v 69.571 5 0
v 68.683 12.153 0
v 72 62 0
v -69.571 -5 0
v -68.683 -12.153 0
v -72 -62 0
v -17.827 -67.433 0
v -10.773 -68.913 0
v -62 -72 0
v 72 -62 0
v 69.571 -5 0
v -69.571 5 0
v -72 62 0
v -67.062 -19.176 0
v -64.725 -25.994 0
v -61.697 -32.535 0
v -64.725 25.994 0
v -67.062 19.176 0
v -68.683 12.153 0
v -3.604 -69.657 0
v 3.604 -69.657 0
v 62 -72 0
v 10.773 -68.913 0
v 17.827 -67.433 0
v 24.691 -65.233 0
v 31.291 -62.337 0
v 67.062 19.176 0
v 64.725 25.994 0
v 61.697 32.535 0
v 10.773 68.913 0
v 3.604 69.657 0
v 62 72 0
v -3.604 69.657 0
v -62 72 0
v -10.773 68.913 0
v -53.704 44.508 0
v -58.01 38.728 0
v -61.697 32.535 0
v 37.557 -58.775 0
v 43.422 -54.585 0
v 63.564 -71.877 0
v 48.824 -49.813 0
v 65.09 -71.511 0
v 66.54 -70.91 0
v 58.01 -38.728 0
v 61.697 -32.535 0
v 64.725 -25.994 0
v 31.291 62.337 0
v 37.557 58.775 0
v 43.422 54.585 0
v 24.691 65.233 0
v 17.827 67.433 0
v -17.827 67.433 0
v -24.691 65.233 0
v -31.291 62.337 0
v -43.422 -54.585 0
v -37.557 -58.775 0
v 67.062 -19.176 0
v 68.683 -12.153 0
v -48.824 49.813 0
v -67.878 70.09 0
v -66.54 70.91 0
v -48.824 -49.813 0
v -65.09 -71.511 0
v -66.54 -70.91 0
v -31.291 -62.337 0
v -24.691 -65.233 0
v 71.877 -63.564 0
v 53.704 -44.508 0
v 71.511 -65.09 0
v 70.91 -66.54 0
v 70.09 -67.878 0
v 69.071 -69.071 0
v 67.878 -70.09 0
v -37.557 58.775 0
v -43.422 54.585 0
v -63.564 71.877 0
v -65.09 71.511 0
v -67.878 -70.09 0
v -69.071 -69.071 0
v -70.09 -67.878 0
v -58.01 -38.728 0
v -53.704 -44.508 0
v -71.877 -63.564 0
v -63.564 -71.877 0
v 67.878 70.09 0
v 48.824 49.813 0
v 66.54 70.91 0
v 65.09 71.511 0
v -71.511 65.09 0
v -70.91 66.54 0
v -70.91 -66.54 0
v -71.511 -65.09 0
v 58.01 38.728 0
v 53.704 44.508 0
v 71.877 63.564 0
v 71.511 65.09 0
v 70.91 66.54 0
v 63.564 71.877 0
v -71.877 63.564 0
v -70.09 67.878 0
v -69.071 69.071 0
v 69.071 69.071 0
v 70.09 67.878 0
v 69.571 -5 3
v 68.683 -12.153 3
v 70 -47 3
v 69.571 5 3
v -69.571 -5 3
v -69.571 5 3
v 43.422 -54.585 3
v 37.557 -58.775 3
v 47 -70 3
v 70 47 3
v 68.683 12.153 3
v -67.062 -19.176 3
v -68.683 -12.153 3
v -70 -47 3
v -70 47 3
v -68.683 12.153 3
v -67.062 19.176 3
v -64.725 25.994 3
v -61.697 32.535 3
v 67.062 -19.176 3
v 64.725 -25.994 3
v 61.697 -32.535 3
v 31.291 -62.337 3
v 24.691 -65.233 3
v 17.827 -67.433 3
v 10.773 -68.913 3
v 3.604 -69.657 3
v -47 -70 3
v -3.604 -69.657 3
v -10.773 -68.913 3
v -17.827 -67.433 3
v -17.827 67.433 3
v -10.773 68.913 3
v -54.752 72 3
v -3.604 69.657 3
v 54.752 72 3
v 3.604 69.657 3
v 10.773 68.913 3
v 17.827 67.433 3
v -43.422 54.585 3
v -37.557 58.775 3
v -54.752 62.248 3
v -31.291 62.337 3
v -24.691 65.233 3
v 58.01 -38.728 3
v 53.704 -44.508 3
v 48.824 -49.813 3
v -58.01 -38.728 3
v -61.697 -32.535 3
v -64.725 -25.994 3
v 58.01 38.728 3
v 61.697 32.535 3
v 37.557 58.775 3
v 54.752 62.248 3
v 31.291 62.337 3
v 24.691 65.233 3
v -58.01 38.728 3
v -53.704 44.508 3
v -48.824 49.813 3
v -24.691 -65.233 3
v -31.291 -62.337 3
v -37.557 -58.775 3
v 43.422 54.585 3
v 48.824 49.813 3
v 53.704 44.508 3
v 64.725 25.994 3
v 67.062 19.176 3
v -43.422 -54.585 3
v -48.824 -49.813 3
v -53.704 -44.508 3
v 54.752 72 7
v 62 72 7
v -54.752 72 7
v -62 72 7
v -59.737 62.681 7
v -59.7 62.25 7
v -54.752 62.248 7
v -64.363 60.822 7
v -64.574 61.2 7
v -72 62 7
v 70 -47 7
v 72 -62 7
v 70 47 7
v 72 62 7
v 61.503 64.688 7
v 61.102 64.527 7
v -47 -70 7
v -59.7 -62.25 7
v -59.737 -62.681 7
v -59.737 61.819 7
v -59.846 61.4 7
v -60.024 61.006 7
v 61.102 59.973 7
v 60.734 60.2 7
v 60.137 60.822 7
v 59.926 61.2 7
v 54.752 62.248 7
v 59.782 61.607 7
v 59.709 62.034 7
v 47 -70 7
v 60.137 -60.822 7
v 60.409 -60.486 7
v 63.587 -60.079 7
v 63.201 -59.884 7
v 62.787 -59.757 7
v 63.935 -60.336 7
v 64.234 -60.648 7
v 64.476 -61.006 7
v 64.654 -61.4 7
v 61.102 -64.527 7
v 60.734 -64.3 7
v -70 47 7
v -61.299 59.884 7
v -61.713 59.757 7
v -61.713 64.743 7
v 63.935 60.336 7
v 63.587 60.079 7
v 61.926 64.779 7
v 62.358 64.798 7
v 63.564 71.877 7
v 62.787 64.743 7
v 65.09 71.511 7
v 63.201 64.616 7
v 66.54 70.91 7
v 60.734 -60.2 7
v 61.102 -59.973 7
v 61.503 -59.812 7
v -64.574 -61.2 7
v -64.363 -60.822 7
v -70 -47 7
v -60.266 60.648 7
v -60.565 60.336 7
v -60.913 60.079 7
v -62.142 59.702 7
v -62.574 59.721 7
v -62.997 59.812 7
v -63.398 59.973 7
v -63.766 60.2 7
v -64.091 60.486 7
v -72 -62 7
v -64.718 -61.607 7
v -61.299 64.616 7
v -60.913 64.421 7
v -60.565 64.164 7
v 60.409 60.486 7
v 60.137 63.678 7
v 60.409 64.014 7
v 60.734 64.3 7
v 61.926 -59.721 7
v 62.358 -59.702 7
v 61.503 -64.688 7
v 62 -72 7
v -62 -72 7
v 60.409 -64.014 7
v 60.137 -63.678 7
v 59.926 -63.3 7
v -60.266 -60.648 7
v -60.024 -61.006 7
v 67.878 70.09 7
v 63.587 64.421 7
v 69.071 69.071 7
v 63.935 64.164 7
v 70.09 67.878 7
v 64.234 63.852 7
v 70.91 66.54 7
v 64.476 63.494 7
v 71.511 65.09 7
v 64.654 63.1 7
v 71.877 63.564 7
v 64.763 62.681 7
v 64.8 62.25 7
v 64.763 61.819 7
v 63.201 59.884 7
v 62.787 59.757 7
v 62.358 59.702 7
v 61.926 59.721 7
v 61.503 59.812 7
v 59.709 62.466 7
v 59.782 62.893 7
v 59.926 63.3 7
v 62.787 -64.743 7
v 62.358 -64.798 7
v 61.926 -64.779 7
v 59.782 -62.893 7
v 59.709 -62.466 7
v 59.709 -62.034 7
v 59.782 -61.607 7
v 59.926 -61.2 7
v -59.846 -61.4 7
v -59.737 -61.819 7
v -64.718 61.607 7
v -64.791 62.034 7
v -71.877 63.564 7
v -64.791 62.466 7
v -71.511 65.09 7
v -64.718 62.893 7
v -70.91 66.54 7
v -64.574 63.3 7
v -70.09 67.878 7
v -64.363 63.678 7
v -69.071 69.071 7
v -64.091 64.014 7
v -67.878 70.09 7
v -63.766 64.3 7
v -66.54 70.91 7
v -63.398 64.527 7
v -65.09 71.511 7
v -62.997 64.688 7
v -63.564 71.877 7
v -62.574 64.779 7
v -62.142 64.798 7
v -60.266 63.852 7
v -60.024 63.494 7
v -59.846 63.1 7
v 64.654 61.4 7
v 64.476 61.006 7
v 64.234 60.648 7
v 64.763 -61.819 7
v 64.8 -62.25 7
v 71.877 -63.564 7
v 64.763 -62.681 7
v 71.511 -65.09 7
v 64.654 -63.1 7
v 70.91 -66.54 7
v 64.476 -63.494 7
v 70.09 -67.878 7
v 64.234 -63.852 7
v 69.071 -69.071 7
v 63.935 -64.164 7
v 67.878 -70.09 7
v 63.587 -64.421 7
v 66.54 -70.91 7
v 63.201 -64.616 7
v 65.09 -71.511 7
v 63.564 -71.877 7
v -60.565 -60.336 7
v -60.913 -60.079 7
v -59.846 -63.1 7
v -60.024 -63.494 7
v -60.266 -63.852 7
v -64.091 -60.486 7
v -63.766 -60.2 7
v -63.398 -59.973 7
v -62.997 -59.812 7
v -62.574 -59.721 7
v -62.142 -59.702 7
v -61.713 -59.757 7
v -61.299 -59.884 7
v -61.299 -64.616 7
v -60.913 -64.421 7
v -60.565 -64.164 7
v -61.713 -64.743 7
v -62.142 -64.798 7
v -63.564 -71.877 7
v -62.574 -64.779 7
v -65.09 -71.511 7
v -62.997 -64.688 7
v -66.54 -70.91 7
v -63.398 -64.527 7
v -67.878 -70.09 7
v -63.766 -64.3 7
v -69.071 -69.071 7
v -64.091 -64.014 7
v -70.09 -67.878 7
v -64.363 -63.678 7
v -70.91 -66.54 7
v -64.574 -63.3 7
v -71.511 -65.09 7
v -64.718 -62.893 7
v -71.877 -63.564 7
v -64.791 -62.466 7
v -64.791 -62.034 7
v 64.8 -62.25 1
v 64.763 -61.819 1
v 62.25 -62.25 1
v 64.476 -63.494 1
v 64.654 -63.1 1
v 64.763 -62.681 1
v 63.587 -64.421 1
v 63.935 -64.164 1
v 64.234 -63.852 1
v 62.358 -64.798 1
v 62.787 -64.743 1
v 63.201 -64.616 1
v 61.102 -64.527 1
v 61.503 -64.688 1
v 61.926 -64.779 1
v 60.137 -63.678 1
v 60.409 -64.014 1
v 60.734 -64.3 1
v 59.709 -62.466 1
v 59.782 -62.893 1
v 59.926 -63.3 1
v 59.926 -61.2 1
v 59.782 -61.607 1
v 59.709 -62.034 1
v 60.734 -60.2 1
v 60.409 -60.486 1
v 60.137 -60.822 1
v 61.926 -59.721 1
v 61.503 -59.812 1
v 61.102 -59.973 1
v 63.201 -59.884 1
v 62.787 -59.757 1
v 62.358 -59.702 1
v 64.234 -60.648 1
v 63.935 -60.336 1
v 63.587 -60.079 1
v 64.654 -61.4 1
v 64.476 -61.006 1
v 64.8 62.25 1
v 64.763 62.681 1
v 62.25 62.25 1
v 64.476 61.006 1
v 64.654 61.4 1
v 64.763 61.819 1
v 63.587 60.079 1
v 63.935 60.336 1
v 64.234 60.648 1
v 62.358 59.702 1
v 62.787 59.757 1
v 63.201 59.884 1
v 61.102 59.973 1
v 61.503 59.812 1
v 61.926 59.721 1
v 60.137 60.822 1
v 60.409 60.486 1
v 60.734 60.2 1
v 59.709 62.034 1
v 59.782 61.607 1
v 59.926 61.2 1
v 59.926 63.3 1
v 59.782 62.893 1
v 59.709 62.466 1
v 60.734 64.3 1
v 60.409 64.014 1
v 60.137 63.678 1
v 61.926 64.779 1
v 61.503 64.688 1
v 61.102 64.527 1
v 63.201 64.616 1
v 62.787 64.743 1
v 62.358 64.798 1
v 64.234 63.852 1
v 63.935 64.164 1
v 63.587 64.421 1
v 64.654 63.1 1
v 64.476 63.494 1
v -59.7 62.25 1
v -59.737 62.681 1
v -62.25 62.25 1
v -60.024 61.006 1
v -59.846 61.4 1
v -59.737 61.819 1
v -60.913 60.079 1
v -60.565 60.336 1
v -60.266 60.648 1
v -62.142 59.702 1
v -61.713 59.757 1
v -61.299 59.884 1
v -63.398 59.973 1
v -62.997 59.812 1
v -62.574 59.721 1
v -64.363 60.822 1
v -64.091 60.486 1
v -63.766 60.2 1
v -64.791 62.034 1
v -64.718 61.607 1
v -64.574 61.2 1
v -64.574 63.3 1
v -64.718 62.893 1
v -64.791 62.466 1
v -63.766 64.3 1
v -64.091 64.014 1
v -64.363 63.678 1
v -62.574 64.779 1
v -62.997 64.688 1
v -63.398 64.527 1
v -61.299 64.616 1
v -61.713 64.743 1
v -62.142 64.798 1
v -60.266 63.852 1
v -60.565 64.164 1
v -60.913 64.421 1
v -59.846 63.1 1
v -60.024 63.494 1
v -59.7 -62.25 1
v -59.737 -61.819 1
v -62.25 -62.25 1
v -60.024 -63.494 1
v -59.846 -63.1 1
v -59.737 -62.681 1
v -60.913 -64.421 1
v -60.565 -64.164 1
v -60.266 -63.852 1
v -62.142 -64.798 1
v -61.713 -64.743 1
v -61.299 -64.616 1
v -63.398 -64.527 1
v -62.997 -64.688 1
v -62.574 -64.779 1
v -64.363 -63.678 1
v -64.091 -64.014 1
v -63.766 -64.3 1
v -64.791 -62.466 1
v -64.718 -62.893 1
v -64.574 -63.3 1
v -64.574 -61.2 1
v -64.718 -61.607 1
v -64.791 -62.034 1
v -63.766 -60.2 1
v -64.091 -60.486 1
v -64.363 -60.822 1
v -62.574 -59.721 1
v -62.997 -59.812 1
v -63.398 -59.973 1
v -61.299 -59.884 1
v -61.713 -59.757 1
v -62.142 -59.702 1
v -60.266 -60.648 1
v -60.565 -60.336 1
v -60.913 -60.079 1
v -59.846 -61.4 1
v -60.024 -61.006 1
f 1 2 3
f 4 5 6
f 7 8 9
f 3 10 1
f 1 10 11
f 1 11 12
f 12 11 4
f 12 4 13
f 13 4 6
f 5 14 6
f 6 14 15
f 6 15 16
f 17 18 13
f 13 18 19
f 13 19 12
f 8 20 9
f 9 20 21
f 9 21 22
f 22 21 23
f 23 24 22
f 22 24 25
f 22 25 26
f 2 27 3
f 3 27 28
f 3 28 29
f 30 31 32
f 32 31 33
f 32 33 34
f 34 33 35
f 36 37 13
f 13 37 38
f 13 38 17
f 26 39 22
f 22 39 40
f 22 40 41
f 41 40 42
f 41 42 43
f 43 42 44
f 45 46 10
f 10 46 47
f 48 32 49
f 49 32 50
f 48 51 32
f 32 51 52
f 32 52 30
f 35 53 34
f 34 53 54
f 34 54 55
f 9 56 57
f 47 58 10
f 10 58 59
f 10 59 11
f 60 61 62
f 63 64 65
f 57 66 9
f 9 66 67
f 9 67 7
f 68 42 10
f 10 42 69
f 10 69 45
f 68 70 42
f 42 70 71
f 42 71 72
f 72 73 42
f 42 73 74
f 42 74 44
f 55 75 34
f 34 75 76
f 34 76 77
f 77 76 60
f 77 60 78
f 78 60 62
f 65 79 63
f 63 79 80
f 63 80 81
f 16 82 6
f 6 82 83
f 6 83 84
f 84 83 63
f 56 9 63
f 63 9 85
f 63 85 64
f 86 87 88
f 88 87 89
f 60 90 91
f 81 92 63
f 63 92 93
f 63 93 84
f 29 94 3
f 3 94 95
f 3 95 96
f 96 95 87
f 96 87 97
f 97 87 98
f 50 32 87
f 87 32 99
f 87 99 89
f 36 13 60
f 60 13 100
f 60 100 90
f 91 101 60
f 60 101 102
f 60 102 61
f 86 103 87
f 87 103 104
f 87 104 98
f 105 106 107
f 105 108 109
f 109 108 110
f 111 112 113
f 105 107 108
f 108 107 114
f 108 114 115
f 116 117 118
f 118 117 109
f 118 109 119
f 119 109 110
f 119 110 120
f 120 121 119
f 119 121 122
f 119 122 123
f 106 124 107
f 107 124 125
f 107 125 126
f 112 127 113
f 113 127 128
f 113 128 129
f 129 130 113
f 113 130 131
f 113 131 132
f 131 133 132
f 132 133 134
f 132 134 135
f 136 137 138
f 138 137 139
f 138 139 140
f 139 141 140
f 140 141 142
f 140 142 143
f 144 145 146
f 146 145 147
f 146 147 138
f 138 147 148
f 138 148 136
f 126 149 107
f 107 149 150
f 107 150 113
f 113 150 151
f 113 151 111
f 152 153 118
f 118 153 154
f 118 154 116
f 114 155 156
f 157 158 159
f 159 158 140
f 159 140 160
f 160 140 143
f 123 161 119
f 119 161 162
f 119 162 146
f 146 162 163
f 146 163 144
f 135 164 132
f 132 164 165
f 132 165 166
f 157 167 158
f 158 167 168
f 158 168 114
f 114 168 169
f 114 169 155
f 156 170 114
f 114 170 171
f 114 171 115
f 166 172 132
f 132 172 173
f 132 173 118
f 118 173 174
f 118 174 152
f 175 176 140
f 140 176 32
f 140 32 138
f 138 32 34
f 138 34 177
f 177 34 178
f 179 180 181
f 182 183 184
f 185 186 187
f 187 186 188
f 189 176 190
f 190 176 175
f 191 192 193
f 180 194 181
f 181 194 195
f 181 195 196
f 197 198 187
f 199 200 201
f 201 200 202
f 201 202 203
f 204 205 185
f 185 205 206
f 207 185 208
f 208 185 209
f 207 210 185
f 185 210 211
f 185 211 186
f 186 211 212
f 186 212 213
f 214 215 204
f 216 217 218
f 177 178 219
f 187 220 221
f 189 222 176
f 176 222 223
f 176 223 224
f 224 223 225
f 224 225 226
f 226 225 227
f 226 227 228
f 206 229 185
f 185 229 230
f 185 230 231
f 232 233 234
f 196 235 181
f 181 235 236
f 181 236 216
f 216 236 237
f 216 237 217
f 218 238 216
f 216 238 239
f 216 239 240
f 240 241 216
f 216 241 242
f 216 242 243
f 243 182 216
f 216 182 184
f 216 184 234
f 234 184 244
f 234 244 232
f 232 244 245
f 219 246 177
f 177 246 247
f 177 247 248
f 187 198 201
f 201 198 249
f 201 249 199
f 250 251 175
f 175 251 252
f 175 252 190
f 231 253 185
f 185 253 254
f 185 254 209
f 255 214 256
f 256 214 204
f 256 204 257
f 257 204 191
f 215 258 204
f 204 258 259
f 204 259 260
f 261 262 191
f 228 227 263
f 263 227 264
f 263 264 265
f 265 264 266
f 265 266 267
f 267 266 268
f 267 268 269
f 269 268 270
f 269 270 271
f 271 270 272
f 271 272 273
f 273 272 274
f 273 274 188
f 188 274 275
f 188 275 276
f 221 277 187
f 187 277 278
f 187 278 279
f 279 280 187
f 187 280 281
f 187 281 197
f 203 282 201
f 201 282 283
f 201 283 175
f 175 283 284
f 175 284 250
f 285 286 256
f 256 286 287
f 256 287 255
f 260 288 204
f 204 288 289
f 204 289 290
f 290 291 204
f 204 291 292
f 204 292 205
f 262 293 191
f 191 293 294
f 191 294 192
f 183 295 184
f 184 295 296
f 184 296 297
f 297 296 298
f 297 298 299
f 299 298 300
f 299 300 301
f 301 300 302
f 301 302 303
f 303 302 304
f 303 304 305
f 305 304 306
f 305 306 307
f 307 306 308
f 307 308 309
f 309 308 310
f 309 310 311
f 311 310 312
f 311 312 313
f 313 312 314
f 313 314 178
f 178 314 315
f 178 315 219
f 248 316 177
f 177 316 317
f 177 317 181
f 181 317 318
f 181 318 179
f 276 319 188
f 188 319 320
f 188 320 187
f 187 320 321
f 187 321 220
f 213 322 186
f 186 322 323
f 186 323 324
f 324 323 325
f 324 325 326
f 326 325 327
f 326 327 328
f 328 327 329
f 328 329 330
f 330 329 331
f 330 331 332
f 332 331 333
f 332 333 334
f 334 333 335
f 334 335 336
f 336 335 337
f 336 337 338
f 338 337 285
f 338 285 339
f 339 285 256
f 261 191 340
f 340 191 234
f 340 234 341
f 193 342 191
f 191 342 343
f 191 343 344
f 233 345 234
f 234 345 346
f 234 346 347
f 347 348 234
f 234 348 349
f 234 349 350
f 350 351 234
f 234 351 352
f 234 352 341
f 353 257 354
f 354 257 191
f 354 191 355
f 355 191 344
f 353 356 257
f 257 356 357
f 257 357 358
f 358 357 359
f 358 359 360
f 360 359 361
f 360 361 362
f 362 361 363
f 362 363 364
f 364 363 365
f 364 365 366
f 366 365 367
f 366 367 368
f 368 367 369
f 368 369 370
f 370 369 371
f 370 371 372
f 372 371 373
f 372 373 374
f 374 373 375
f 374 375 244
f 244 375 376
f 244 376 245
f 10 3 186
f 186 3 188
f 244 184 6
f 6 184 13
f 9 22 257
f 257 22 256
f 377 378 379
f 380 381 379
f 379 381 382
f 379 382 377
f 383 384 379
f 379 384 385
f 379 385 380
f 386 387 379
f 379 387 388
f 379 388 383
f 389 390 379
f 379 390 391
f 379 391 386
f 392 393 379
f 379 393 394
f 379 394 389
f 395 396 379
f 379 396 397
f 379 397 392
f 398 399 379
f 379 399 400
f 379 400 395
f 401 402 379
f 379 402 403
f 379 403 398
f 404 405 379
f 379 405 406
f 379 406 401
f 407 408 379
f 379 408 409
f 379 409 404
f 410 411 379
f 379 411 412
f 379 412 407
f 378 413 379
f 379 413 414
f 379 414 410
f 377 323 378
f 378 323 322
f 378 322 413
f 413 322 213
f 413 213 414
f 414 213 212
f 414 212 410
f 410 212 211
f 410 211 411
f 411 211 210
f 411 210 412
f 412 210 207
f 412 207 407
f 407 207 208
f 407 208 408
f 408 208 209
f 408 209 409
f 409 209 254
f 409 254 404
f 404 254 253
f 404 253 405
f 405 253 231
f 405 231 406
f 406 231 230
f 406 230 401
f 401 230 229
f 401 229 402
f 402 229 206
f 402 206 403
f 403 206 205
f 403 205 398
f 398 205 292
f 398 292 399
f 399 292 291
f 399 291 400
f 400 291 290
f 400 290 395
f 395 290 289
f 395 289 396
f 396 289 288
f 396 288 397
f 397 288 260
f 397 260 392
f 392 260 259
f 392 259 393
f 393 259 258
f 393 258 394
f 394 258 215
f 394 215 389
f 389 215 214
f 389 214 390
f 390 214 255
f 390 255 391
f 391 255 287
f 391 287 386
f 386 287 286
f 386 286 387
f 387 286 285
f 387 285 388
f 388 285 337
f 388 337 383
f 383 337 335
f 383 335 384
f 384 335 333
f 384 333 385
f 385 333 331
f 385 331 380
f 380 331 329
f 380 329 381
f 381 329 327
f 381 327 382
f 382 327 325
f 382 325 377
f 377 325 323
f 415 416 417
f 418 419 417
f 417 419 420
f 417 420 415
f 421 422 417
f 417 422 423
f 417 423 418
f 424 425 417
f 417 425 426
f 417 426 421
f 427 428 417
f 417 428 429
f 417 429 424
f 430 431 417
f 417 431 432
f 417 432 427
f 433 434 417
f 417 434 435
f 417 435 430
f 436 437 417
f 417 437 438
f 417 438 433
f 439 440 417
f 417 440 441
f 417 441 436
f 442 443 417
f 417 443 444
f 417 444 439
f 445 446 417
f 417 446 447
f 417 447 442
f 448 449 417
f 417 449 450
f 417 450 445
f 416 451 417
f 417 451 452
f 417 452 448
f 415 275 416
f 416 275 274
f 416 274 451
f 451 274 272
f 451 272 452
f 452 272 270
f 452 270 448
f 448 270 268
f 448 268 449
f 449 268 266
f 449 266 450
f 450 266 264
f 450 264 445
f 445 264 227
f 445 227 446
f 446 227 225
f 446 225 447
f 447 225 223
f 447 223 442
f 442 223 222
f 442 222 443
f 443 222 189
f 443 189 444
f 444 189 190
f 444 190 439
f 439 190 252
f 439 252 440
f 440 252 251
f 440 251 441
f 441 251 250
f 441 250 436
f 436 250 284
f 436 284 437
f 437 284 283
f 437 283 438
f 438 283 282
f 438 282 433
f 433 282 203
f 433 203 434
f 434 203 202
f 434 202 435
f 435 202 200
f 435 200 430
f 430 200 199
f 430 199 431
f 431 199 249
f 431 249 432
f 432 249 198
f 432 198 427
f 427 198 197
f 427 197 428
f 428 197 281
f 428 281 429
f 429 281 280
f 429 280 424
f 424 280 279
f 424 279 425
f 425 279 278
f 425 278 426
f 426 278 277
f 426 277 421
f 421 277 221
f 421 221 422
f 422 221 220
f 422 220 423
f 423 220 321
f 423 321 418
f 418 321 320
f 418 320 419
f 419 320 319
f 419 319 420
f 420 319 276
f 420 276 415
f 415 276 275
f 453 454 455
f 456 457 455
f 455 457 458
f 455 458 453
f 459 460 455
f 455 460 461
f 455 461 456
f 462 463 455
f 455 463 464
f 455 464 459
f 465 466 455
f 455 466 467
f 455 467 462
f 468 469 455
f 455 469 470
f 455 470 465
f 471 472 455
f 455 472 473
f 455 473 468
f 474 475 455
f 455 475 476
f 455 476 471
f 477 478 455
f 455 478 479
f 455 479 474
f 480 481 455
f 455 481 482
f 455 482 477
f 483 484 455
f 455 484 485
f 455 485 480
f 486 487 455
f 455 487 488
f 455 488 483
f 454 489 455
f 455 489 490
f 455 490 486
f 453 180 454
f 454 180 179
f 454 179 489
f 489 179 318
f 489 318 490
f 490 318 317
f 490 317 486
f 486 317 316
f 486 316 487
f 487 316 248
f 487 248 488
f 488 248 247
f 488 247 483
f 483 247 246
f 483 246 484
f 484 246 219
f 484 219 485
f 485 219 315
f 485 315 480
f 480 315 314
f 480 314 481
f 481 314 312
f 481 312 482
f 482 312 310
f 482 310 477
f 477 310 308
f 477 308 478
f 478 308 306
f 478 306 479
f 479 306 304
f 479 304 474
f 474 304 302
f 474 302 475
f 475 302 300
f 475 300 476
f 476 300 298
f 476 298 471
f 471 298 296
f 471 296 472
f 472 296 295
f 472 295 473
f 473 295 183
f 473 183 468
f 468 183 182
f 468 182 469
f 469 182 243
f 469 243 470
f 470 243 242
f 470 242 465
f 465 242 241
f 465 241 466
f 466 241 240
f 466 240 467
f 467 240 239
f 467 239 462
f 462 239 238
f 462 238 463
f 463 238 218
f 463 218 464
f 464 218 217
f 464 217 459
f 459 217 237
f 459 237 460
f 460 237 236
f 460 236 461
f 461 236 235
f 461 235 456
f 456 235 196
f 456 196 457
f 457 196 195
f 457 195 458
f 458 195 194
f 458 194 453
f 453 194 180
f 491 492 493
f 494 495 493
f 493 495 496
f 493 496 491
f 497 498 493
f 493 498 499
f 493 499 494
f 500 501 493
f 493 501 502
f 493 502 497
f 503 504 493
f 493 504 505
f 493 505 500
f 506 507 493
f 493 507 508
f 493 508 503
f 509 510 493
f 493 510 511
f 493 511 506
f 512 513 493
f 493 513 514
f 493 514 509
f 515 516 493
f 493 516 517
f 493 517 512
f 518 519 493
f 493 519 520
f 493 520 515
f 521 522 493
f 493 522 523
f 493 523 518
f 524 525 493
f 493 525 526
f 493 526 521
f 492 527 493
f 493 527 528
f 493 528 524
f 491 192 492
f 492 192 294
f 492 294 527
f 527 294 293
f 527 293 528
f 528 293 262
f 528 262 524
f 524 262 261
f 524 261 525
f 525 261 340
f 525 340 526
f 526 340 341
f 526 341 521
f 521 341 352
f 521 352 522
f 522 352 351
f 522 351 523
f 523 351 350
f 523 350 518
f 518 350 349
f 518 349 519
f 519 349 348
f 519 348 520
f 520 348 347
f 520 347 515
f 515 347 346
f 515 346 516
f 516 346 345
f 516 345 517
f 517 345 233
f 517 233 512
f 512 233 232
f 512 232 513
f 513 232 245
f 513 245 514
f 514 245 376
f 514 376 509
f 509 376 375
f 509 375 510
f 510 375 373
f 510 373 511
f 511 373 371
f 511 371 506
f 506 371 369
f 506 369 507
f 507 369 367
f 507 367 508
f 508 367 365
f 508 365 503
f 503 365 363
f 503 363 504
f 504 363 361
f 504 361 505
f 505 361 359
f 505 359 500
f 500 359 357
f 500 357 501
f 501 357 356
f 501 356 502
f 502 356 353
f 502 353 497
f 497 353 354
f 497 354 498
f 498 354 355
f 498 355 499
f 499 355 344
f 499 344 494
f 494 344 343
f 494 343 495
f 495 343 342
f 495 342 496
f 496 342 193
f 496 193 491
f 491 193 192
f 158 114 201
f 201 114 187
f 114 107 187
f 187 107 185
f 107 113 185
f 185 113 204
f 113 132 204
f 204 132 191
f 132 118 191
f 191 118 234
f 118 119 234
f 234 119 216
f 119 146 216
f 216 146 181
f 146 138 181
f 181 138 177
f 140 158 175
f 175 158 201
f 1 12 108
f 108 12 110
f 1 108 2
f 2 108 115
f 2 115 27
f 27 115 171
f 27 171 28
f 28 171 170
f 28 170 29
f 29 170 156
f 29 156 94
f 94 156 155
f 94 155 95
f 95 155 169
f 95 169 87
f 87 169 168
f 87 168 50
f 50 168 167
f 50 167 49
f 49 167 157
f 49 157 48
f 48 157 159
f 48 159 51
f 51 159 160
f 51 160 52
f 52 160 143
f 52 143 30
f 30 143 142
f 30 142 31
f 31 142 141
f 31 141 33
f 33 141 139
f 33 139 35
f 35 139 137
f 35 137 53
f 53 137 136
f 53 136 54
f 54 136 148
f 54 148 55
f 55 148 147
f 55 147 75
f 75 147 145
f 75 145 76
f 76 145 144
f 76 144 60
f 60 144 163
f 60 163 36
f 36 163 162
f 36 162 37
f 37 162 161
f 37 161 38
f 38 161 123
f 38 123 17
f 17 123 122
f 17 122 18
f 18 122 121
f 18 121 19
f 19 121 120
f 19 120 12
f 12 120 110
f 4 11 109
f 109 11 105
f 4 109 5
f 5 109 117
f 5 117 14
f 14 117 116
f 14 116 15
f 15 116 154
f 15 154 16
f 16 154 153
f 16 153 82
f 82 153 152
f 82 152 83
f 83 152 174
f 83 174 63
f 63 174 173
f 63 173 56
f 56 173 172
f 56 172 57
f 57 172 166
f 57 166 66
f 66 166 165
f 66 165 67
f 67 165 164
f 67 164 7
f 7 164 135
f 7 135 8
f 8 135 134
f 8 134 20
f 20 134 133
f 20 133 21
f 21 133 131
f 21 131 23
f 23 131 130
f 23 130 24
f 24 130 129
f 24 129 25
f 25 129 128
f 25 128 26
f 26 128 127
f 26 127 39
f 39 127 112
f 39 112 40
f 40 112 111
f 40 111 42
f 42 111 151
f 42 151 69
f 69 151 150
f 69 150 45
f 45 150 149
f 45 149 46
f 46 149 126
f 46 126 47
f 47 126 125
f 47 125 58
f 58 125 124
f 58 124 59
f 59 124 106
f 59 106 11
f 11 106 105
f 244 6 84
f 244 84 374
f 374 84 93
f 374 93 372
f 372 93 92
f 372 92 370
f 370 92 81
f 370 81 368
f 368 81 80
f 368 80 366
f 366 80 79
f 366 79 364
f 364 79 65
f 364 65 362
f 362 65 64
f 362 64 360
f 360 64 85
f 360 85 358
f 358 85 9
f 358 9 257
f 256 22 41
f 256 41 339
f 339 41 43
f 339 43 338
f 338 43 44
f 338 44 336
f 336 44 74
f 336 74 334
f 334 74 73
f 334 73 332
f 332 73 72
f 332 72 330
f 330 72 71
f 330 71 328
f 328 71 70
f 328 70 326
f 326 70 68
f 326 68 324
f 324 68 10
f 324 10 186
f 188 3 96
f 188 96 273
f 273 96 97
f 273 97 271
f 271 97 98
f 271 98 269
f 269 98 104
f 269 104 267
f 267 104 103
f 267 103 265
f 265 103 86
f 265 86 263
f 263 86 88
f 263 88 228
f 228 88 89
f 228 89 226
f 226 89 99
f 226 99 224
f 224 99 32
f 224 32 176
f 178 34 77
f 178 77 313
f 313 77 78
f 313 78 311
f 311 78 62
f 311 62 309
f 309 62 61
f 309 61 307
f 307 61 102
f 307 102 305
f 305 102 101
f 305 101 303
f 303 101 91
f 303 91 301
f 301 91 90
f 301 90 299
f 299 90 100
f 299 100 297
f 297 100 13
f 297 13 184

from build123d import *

# Parameters (mm, degrees)
SKICA1_W                          = 144
SKICA1_H                          = 144
P_IDAT_VYSUNUT_M1_DEPTH           = 7
D_RY_PRO_KOL_K_VELIKOST_MM1_D     = 5.1
D_RY_PRO_KOL_K_VELIKOST_MM1_DEPTH = 6
ODEBRAT_VYSUNUT_M1_DEPTH          = 4
ODEBRAT_VYSUNUT_M2_DEPTH          = 102.901913623
ZAOBLIT1_R                        = 10


with BuildPart() as part:
    # Skica1 → Přidat vysunutím1 (new body)
    with BuildSketch(Plane.XY):
        Rectangle(SKICA1_W, SKICA1_H)
    extrude(amount=P_IDAT_VYSUNUT_M1_DEPTH)

    # Díry pro kolík, velikost mm1
    with Locations(Plane.XY.offset(7)):
        with Locations((-62.25, -62.25), (-62.25, 62.25), (62.25, 62.25), (62.25, -62.25)):
            Hole(D_RY_PRO_KOL_K_VELIKOST_MM1_D / 2, depth=D_RY_PRO_KOL_K_VELIKOST_MM1_DEPTH)

    # Skica5 → Odebrat vysunutím1 (cut)
    with BuildSketch(Plane.XY.offset(7)):
        Polygon((-70, -47), (-47, -70), (47, -70), (70, -47), (70, 47), (54.75233406, 62.24766594), (54.75233406, 72), (-54.75233406, 72), (-54.75233406, 62.24766594), (-70, 47), align=None)
    extrude(amount=-ODEBRAT_VYSUNUT_M1_DEPTH, mode=Mode.SUBTRACT)

    # Skica6 → Odebrat vysunutím2 (cut, through all)
    with BuildSketch(Plane.XY.offset(3)):
        with BuildLine():
            ThreePointArc((69.570557709, 5), (0, 69.75), (-69.570557709, 5))
            Line((-69.570557709, 5), (69.570557709, 5))
        make_face()
        with BuildLine():
            Line((69.570557709, -5), (-69.570557709, -5))
            ThreePointArc((-69.570557709, -5), (0, -69.75), (69.570557709, -5))
        make_face()
    extrude(amount=-ODEBRAT_VYSUNUT_M2_DEPTH, mode=Mode.SUBTRACT)

    # Zaoblit1
    zaoblit1_edges = [part.edges().sort_by_distance(p)[0] for p in [
        (72, -72, 3.5),
        (-72, -72, 3.5),
        (-72, 72, 3.5),
        (72, 72, 3.5),
    ]]
    fillet(zaoblit1_edges, radius=ZAOBLIT1_R)


solid = part.part
